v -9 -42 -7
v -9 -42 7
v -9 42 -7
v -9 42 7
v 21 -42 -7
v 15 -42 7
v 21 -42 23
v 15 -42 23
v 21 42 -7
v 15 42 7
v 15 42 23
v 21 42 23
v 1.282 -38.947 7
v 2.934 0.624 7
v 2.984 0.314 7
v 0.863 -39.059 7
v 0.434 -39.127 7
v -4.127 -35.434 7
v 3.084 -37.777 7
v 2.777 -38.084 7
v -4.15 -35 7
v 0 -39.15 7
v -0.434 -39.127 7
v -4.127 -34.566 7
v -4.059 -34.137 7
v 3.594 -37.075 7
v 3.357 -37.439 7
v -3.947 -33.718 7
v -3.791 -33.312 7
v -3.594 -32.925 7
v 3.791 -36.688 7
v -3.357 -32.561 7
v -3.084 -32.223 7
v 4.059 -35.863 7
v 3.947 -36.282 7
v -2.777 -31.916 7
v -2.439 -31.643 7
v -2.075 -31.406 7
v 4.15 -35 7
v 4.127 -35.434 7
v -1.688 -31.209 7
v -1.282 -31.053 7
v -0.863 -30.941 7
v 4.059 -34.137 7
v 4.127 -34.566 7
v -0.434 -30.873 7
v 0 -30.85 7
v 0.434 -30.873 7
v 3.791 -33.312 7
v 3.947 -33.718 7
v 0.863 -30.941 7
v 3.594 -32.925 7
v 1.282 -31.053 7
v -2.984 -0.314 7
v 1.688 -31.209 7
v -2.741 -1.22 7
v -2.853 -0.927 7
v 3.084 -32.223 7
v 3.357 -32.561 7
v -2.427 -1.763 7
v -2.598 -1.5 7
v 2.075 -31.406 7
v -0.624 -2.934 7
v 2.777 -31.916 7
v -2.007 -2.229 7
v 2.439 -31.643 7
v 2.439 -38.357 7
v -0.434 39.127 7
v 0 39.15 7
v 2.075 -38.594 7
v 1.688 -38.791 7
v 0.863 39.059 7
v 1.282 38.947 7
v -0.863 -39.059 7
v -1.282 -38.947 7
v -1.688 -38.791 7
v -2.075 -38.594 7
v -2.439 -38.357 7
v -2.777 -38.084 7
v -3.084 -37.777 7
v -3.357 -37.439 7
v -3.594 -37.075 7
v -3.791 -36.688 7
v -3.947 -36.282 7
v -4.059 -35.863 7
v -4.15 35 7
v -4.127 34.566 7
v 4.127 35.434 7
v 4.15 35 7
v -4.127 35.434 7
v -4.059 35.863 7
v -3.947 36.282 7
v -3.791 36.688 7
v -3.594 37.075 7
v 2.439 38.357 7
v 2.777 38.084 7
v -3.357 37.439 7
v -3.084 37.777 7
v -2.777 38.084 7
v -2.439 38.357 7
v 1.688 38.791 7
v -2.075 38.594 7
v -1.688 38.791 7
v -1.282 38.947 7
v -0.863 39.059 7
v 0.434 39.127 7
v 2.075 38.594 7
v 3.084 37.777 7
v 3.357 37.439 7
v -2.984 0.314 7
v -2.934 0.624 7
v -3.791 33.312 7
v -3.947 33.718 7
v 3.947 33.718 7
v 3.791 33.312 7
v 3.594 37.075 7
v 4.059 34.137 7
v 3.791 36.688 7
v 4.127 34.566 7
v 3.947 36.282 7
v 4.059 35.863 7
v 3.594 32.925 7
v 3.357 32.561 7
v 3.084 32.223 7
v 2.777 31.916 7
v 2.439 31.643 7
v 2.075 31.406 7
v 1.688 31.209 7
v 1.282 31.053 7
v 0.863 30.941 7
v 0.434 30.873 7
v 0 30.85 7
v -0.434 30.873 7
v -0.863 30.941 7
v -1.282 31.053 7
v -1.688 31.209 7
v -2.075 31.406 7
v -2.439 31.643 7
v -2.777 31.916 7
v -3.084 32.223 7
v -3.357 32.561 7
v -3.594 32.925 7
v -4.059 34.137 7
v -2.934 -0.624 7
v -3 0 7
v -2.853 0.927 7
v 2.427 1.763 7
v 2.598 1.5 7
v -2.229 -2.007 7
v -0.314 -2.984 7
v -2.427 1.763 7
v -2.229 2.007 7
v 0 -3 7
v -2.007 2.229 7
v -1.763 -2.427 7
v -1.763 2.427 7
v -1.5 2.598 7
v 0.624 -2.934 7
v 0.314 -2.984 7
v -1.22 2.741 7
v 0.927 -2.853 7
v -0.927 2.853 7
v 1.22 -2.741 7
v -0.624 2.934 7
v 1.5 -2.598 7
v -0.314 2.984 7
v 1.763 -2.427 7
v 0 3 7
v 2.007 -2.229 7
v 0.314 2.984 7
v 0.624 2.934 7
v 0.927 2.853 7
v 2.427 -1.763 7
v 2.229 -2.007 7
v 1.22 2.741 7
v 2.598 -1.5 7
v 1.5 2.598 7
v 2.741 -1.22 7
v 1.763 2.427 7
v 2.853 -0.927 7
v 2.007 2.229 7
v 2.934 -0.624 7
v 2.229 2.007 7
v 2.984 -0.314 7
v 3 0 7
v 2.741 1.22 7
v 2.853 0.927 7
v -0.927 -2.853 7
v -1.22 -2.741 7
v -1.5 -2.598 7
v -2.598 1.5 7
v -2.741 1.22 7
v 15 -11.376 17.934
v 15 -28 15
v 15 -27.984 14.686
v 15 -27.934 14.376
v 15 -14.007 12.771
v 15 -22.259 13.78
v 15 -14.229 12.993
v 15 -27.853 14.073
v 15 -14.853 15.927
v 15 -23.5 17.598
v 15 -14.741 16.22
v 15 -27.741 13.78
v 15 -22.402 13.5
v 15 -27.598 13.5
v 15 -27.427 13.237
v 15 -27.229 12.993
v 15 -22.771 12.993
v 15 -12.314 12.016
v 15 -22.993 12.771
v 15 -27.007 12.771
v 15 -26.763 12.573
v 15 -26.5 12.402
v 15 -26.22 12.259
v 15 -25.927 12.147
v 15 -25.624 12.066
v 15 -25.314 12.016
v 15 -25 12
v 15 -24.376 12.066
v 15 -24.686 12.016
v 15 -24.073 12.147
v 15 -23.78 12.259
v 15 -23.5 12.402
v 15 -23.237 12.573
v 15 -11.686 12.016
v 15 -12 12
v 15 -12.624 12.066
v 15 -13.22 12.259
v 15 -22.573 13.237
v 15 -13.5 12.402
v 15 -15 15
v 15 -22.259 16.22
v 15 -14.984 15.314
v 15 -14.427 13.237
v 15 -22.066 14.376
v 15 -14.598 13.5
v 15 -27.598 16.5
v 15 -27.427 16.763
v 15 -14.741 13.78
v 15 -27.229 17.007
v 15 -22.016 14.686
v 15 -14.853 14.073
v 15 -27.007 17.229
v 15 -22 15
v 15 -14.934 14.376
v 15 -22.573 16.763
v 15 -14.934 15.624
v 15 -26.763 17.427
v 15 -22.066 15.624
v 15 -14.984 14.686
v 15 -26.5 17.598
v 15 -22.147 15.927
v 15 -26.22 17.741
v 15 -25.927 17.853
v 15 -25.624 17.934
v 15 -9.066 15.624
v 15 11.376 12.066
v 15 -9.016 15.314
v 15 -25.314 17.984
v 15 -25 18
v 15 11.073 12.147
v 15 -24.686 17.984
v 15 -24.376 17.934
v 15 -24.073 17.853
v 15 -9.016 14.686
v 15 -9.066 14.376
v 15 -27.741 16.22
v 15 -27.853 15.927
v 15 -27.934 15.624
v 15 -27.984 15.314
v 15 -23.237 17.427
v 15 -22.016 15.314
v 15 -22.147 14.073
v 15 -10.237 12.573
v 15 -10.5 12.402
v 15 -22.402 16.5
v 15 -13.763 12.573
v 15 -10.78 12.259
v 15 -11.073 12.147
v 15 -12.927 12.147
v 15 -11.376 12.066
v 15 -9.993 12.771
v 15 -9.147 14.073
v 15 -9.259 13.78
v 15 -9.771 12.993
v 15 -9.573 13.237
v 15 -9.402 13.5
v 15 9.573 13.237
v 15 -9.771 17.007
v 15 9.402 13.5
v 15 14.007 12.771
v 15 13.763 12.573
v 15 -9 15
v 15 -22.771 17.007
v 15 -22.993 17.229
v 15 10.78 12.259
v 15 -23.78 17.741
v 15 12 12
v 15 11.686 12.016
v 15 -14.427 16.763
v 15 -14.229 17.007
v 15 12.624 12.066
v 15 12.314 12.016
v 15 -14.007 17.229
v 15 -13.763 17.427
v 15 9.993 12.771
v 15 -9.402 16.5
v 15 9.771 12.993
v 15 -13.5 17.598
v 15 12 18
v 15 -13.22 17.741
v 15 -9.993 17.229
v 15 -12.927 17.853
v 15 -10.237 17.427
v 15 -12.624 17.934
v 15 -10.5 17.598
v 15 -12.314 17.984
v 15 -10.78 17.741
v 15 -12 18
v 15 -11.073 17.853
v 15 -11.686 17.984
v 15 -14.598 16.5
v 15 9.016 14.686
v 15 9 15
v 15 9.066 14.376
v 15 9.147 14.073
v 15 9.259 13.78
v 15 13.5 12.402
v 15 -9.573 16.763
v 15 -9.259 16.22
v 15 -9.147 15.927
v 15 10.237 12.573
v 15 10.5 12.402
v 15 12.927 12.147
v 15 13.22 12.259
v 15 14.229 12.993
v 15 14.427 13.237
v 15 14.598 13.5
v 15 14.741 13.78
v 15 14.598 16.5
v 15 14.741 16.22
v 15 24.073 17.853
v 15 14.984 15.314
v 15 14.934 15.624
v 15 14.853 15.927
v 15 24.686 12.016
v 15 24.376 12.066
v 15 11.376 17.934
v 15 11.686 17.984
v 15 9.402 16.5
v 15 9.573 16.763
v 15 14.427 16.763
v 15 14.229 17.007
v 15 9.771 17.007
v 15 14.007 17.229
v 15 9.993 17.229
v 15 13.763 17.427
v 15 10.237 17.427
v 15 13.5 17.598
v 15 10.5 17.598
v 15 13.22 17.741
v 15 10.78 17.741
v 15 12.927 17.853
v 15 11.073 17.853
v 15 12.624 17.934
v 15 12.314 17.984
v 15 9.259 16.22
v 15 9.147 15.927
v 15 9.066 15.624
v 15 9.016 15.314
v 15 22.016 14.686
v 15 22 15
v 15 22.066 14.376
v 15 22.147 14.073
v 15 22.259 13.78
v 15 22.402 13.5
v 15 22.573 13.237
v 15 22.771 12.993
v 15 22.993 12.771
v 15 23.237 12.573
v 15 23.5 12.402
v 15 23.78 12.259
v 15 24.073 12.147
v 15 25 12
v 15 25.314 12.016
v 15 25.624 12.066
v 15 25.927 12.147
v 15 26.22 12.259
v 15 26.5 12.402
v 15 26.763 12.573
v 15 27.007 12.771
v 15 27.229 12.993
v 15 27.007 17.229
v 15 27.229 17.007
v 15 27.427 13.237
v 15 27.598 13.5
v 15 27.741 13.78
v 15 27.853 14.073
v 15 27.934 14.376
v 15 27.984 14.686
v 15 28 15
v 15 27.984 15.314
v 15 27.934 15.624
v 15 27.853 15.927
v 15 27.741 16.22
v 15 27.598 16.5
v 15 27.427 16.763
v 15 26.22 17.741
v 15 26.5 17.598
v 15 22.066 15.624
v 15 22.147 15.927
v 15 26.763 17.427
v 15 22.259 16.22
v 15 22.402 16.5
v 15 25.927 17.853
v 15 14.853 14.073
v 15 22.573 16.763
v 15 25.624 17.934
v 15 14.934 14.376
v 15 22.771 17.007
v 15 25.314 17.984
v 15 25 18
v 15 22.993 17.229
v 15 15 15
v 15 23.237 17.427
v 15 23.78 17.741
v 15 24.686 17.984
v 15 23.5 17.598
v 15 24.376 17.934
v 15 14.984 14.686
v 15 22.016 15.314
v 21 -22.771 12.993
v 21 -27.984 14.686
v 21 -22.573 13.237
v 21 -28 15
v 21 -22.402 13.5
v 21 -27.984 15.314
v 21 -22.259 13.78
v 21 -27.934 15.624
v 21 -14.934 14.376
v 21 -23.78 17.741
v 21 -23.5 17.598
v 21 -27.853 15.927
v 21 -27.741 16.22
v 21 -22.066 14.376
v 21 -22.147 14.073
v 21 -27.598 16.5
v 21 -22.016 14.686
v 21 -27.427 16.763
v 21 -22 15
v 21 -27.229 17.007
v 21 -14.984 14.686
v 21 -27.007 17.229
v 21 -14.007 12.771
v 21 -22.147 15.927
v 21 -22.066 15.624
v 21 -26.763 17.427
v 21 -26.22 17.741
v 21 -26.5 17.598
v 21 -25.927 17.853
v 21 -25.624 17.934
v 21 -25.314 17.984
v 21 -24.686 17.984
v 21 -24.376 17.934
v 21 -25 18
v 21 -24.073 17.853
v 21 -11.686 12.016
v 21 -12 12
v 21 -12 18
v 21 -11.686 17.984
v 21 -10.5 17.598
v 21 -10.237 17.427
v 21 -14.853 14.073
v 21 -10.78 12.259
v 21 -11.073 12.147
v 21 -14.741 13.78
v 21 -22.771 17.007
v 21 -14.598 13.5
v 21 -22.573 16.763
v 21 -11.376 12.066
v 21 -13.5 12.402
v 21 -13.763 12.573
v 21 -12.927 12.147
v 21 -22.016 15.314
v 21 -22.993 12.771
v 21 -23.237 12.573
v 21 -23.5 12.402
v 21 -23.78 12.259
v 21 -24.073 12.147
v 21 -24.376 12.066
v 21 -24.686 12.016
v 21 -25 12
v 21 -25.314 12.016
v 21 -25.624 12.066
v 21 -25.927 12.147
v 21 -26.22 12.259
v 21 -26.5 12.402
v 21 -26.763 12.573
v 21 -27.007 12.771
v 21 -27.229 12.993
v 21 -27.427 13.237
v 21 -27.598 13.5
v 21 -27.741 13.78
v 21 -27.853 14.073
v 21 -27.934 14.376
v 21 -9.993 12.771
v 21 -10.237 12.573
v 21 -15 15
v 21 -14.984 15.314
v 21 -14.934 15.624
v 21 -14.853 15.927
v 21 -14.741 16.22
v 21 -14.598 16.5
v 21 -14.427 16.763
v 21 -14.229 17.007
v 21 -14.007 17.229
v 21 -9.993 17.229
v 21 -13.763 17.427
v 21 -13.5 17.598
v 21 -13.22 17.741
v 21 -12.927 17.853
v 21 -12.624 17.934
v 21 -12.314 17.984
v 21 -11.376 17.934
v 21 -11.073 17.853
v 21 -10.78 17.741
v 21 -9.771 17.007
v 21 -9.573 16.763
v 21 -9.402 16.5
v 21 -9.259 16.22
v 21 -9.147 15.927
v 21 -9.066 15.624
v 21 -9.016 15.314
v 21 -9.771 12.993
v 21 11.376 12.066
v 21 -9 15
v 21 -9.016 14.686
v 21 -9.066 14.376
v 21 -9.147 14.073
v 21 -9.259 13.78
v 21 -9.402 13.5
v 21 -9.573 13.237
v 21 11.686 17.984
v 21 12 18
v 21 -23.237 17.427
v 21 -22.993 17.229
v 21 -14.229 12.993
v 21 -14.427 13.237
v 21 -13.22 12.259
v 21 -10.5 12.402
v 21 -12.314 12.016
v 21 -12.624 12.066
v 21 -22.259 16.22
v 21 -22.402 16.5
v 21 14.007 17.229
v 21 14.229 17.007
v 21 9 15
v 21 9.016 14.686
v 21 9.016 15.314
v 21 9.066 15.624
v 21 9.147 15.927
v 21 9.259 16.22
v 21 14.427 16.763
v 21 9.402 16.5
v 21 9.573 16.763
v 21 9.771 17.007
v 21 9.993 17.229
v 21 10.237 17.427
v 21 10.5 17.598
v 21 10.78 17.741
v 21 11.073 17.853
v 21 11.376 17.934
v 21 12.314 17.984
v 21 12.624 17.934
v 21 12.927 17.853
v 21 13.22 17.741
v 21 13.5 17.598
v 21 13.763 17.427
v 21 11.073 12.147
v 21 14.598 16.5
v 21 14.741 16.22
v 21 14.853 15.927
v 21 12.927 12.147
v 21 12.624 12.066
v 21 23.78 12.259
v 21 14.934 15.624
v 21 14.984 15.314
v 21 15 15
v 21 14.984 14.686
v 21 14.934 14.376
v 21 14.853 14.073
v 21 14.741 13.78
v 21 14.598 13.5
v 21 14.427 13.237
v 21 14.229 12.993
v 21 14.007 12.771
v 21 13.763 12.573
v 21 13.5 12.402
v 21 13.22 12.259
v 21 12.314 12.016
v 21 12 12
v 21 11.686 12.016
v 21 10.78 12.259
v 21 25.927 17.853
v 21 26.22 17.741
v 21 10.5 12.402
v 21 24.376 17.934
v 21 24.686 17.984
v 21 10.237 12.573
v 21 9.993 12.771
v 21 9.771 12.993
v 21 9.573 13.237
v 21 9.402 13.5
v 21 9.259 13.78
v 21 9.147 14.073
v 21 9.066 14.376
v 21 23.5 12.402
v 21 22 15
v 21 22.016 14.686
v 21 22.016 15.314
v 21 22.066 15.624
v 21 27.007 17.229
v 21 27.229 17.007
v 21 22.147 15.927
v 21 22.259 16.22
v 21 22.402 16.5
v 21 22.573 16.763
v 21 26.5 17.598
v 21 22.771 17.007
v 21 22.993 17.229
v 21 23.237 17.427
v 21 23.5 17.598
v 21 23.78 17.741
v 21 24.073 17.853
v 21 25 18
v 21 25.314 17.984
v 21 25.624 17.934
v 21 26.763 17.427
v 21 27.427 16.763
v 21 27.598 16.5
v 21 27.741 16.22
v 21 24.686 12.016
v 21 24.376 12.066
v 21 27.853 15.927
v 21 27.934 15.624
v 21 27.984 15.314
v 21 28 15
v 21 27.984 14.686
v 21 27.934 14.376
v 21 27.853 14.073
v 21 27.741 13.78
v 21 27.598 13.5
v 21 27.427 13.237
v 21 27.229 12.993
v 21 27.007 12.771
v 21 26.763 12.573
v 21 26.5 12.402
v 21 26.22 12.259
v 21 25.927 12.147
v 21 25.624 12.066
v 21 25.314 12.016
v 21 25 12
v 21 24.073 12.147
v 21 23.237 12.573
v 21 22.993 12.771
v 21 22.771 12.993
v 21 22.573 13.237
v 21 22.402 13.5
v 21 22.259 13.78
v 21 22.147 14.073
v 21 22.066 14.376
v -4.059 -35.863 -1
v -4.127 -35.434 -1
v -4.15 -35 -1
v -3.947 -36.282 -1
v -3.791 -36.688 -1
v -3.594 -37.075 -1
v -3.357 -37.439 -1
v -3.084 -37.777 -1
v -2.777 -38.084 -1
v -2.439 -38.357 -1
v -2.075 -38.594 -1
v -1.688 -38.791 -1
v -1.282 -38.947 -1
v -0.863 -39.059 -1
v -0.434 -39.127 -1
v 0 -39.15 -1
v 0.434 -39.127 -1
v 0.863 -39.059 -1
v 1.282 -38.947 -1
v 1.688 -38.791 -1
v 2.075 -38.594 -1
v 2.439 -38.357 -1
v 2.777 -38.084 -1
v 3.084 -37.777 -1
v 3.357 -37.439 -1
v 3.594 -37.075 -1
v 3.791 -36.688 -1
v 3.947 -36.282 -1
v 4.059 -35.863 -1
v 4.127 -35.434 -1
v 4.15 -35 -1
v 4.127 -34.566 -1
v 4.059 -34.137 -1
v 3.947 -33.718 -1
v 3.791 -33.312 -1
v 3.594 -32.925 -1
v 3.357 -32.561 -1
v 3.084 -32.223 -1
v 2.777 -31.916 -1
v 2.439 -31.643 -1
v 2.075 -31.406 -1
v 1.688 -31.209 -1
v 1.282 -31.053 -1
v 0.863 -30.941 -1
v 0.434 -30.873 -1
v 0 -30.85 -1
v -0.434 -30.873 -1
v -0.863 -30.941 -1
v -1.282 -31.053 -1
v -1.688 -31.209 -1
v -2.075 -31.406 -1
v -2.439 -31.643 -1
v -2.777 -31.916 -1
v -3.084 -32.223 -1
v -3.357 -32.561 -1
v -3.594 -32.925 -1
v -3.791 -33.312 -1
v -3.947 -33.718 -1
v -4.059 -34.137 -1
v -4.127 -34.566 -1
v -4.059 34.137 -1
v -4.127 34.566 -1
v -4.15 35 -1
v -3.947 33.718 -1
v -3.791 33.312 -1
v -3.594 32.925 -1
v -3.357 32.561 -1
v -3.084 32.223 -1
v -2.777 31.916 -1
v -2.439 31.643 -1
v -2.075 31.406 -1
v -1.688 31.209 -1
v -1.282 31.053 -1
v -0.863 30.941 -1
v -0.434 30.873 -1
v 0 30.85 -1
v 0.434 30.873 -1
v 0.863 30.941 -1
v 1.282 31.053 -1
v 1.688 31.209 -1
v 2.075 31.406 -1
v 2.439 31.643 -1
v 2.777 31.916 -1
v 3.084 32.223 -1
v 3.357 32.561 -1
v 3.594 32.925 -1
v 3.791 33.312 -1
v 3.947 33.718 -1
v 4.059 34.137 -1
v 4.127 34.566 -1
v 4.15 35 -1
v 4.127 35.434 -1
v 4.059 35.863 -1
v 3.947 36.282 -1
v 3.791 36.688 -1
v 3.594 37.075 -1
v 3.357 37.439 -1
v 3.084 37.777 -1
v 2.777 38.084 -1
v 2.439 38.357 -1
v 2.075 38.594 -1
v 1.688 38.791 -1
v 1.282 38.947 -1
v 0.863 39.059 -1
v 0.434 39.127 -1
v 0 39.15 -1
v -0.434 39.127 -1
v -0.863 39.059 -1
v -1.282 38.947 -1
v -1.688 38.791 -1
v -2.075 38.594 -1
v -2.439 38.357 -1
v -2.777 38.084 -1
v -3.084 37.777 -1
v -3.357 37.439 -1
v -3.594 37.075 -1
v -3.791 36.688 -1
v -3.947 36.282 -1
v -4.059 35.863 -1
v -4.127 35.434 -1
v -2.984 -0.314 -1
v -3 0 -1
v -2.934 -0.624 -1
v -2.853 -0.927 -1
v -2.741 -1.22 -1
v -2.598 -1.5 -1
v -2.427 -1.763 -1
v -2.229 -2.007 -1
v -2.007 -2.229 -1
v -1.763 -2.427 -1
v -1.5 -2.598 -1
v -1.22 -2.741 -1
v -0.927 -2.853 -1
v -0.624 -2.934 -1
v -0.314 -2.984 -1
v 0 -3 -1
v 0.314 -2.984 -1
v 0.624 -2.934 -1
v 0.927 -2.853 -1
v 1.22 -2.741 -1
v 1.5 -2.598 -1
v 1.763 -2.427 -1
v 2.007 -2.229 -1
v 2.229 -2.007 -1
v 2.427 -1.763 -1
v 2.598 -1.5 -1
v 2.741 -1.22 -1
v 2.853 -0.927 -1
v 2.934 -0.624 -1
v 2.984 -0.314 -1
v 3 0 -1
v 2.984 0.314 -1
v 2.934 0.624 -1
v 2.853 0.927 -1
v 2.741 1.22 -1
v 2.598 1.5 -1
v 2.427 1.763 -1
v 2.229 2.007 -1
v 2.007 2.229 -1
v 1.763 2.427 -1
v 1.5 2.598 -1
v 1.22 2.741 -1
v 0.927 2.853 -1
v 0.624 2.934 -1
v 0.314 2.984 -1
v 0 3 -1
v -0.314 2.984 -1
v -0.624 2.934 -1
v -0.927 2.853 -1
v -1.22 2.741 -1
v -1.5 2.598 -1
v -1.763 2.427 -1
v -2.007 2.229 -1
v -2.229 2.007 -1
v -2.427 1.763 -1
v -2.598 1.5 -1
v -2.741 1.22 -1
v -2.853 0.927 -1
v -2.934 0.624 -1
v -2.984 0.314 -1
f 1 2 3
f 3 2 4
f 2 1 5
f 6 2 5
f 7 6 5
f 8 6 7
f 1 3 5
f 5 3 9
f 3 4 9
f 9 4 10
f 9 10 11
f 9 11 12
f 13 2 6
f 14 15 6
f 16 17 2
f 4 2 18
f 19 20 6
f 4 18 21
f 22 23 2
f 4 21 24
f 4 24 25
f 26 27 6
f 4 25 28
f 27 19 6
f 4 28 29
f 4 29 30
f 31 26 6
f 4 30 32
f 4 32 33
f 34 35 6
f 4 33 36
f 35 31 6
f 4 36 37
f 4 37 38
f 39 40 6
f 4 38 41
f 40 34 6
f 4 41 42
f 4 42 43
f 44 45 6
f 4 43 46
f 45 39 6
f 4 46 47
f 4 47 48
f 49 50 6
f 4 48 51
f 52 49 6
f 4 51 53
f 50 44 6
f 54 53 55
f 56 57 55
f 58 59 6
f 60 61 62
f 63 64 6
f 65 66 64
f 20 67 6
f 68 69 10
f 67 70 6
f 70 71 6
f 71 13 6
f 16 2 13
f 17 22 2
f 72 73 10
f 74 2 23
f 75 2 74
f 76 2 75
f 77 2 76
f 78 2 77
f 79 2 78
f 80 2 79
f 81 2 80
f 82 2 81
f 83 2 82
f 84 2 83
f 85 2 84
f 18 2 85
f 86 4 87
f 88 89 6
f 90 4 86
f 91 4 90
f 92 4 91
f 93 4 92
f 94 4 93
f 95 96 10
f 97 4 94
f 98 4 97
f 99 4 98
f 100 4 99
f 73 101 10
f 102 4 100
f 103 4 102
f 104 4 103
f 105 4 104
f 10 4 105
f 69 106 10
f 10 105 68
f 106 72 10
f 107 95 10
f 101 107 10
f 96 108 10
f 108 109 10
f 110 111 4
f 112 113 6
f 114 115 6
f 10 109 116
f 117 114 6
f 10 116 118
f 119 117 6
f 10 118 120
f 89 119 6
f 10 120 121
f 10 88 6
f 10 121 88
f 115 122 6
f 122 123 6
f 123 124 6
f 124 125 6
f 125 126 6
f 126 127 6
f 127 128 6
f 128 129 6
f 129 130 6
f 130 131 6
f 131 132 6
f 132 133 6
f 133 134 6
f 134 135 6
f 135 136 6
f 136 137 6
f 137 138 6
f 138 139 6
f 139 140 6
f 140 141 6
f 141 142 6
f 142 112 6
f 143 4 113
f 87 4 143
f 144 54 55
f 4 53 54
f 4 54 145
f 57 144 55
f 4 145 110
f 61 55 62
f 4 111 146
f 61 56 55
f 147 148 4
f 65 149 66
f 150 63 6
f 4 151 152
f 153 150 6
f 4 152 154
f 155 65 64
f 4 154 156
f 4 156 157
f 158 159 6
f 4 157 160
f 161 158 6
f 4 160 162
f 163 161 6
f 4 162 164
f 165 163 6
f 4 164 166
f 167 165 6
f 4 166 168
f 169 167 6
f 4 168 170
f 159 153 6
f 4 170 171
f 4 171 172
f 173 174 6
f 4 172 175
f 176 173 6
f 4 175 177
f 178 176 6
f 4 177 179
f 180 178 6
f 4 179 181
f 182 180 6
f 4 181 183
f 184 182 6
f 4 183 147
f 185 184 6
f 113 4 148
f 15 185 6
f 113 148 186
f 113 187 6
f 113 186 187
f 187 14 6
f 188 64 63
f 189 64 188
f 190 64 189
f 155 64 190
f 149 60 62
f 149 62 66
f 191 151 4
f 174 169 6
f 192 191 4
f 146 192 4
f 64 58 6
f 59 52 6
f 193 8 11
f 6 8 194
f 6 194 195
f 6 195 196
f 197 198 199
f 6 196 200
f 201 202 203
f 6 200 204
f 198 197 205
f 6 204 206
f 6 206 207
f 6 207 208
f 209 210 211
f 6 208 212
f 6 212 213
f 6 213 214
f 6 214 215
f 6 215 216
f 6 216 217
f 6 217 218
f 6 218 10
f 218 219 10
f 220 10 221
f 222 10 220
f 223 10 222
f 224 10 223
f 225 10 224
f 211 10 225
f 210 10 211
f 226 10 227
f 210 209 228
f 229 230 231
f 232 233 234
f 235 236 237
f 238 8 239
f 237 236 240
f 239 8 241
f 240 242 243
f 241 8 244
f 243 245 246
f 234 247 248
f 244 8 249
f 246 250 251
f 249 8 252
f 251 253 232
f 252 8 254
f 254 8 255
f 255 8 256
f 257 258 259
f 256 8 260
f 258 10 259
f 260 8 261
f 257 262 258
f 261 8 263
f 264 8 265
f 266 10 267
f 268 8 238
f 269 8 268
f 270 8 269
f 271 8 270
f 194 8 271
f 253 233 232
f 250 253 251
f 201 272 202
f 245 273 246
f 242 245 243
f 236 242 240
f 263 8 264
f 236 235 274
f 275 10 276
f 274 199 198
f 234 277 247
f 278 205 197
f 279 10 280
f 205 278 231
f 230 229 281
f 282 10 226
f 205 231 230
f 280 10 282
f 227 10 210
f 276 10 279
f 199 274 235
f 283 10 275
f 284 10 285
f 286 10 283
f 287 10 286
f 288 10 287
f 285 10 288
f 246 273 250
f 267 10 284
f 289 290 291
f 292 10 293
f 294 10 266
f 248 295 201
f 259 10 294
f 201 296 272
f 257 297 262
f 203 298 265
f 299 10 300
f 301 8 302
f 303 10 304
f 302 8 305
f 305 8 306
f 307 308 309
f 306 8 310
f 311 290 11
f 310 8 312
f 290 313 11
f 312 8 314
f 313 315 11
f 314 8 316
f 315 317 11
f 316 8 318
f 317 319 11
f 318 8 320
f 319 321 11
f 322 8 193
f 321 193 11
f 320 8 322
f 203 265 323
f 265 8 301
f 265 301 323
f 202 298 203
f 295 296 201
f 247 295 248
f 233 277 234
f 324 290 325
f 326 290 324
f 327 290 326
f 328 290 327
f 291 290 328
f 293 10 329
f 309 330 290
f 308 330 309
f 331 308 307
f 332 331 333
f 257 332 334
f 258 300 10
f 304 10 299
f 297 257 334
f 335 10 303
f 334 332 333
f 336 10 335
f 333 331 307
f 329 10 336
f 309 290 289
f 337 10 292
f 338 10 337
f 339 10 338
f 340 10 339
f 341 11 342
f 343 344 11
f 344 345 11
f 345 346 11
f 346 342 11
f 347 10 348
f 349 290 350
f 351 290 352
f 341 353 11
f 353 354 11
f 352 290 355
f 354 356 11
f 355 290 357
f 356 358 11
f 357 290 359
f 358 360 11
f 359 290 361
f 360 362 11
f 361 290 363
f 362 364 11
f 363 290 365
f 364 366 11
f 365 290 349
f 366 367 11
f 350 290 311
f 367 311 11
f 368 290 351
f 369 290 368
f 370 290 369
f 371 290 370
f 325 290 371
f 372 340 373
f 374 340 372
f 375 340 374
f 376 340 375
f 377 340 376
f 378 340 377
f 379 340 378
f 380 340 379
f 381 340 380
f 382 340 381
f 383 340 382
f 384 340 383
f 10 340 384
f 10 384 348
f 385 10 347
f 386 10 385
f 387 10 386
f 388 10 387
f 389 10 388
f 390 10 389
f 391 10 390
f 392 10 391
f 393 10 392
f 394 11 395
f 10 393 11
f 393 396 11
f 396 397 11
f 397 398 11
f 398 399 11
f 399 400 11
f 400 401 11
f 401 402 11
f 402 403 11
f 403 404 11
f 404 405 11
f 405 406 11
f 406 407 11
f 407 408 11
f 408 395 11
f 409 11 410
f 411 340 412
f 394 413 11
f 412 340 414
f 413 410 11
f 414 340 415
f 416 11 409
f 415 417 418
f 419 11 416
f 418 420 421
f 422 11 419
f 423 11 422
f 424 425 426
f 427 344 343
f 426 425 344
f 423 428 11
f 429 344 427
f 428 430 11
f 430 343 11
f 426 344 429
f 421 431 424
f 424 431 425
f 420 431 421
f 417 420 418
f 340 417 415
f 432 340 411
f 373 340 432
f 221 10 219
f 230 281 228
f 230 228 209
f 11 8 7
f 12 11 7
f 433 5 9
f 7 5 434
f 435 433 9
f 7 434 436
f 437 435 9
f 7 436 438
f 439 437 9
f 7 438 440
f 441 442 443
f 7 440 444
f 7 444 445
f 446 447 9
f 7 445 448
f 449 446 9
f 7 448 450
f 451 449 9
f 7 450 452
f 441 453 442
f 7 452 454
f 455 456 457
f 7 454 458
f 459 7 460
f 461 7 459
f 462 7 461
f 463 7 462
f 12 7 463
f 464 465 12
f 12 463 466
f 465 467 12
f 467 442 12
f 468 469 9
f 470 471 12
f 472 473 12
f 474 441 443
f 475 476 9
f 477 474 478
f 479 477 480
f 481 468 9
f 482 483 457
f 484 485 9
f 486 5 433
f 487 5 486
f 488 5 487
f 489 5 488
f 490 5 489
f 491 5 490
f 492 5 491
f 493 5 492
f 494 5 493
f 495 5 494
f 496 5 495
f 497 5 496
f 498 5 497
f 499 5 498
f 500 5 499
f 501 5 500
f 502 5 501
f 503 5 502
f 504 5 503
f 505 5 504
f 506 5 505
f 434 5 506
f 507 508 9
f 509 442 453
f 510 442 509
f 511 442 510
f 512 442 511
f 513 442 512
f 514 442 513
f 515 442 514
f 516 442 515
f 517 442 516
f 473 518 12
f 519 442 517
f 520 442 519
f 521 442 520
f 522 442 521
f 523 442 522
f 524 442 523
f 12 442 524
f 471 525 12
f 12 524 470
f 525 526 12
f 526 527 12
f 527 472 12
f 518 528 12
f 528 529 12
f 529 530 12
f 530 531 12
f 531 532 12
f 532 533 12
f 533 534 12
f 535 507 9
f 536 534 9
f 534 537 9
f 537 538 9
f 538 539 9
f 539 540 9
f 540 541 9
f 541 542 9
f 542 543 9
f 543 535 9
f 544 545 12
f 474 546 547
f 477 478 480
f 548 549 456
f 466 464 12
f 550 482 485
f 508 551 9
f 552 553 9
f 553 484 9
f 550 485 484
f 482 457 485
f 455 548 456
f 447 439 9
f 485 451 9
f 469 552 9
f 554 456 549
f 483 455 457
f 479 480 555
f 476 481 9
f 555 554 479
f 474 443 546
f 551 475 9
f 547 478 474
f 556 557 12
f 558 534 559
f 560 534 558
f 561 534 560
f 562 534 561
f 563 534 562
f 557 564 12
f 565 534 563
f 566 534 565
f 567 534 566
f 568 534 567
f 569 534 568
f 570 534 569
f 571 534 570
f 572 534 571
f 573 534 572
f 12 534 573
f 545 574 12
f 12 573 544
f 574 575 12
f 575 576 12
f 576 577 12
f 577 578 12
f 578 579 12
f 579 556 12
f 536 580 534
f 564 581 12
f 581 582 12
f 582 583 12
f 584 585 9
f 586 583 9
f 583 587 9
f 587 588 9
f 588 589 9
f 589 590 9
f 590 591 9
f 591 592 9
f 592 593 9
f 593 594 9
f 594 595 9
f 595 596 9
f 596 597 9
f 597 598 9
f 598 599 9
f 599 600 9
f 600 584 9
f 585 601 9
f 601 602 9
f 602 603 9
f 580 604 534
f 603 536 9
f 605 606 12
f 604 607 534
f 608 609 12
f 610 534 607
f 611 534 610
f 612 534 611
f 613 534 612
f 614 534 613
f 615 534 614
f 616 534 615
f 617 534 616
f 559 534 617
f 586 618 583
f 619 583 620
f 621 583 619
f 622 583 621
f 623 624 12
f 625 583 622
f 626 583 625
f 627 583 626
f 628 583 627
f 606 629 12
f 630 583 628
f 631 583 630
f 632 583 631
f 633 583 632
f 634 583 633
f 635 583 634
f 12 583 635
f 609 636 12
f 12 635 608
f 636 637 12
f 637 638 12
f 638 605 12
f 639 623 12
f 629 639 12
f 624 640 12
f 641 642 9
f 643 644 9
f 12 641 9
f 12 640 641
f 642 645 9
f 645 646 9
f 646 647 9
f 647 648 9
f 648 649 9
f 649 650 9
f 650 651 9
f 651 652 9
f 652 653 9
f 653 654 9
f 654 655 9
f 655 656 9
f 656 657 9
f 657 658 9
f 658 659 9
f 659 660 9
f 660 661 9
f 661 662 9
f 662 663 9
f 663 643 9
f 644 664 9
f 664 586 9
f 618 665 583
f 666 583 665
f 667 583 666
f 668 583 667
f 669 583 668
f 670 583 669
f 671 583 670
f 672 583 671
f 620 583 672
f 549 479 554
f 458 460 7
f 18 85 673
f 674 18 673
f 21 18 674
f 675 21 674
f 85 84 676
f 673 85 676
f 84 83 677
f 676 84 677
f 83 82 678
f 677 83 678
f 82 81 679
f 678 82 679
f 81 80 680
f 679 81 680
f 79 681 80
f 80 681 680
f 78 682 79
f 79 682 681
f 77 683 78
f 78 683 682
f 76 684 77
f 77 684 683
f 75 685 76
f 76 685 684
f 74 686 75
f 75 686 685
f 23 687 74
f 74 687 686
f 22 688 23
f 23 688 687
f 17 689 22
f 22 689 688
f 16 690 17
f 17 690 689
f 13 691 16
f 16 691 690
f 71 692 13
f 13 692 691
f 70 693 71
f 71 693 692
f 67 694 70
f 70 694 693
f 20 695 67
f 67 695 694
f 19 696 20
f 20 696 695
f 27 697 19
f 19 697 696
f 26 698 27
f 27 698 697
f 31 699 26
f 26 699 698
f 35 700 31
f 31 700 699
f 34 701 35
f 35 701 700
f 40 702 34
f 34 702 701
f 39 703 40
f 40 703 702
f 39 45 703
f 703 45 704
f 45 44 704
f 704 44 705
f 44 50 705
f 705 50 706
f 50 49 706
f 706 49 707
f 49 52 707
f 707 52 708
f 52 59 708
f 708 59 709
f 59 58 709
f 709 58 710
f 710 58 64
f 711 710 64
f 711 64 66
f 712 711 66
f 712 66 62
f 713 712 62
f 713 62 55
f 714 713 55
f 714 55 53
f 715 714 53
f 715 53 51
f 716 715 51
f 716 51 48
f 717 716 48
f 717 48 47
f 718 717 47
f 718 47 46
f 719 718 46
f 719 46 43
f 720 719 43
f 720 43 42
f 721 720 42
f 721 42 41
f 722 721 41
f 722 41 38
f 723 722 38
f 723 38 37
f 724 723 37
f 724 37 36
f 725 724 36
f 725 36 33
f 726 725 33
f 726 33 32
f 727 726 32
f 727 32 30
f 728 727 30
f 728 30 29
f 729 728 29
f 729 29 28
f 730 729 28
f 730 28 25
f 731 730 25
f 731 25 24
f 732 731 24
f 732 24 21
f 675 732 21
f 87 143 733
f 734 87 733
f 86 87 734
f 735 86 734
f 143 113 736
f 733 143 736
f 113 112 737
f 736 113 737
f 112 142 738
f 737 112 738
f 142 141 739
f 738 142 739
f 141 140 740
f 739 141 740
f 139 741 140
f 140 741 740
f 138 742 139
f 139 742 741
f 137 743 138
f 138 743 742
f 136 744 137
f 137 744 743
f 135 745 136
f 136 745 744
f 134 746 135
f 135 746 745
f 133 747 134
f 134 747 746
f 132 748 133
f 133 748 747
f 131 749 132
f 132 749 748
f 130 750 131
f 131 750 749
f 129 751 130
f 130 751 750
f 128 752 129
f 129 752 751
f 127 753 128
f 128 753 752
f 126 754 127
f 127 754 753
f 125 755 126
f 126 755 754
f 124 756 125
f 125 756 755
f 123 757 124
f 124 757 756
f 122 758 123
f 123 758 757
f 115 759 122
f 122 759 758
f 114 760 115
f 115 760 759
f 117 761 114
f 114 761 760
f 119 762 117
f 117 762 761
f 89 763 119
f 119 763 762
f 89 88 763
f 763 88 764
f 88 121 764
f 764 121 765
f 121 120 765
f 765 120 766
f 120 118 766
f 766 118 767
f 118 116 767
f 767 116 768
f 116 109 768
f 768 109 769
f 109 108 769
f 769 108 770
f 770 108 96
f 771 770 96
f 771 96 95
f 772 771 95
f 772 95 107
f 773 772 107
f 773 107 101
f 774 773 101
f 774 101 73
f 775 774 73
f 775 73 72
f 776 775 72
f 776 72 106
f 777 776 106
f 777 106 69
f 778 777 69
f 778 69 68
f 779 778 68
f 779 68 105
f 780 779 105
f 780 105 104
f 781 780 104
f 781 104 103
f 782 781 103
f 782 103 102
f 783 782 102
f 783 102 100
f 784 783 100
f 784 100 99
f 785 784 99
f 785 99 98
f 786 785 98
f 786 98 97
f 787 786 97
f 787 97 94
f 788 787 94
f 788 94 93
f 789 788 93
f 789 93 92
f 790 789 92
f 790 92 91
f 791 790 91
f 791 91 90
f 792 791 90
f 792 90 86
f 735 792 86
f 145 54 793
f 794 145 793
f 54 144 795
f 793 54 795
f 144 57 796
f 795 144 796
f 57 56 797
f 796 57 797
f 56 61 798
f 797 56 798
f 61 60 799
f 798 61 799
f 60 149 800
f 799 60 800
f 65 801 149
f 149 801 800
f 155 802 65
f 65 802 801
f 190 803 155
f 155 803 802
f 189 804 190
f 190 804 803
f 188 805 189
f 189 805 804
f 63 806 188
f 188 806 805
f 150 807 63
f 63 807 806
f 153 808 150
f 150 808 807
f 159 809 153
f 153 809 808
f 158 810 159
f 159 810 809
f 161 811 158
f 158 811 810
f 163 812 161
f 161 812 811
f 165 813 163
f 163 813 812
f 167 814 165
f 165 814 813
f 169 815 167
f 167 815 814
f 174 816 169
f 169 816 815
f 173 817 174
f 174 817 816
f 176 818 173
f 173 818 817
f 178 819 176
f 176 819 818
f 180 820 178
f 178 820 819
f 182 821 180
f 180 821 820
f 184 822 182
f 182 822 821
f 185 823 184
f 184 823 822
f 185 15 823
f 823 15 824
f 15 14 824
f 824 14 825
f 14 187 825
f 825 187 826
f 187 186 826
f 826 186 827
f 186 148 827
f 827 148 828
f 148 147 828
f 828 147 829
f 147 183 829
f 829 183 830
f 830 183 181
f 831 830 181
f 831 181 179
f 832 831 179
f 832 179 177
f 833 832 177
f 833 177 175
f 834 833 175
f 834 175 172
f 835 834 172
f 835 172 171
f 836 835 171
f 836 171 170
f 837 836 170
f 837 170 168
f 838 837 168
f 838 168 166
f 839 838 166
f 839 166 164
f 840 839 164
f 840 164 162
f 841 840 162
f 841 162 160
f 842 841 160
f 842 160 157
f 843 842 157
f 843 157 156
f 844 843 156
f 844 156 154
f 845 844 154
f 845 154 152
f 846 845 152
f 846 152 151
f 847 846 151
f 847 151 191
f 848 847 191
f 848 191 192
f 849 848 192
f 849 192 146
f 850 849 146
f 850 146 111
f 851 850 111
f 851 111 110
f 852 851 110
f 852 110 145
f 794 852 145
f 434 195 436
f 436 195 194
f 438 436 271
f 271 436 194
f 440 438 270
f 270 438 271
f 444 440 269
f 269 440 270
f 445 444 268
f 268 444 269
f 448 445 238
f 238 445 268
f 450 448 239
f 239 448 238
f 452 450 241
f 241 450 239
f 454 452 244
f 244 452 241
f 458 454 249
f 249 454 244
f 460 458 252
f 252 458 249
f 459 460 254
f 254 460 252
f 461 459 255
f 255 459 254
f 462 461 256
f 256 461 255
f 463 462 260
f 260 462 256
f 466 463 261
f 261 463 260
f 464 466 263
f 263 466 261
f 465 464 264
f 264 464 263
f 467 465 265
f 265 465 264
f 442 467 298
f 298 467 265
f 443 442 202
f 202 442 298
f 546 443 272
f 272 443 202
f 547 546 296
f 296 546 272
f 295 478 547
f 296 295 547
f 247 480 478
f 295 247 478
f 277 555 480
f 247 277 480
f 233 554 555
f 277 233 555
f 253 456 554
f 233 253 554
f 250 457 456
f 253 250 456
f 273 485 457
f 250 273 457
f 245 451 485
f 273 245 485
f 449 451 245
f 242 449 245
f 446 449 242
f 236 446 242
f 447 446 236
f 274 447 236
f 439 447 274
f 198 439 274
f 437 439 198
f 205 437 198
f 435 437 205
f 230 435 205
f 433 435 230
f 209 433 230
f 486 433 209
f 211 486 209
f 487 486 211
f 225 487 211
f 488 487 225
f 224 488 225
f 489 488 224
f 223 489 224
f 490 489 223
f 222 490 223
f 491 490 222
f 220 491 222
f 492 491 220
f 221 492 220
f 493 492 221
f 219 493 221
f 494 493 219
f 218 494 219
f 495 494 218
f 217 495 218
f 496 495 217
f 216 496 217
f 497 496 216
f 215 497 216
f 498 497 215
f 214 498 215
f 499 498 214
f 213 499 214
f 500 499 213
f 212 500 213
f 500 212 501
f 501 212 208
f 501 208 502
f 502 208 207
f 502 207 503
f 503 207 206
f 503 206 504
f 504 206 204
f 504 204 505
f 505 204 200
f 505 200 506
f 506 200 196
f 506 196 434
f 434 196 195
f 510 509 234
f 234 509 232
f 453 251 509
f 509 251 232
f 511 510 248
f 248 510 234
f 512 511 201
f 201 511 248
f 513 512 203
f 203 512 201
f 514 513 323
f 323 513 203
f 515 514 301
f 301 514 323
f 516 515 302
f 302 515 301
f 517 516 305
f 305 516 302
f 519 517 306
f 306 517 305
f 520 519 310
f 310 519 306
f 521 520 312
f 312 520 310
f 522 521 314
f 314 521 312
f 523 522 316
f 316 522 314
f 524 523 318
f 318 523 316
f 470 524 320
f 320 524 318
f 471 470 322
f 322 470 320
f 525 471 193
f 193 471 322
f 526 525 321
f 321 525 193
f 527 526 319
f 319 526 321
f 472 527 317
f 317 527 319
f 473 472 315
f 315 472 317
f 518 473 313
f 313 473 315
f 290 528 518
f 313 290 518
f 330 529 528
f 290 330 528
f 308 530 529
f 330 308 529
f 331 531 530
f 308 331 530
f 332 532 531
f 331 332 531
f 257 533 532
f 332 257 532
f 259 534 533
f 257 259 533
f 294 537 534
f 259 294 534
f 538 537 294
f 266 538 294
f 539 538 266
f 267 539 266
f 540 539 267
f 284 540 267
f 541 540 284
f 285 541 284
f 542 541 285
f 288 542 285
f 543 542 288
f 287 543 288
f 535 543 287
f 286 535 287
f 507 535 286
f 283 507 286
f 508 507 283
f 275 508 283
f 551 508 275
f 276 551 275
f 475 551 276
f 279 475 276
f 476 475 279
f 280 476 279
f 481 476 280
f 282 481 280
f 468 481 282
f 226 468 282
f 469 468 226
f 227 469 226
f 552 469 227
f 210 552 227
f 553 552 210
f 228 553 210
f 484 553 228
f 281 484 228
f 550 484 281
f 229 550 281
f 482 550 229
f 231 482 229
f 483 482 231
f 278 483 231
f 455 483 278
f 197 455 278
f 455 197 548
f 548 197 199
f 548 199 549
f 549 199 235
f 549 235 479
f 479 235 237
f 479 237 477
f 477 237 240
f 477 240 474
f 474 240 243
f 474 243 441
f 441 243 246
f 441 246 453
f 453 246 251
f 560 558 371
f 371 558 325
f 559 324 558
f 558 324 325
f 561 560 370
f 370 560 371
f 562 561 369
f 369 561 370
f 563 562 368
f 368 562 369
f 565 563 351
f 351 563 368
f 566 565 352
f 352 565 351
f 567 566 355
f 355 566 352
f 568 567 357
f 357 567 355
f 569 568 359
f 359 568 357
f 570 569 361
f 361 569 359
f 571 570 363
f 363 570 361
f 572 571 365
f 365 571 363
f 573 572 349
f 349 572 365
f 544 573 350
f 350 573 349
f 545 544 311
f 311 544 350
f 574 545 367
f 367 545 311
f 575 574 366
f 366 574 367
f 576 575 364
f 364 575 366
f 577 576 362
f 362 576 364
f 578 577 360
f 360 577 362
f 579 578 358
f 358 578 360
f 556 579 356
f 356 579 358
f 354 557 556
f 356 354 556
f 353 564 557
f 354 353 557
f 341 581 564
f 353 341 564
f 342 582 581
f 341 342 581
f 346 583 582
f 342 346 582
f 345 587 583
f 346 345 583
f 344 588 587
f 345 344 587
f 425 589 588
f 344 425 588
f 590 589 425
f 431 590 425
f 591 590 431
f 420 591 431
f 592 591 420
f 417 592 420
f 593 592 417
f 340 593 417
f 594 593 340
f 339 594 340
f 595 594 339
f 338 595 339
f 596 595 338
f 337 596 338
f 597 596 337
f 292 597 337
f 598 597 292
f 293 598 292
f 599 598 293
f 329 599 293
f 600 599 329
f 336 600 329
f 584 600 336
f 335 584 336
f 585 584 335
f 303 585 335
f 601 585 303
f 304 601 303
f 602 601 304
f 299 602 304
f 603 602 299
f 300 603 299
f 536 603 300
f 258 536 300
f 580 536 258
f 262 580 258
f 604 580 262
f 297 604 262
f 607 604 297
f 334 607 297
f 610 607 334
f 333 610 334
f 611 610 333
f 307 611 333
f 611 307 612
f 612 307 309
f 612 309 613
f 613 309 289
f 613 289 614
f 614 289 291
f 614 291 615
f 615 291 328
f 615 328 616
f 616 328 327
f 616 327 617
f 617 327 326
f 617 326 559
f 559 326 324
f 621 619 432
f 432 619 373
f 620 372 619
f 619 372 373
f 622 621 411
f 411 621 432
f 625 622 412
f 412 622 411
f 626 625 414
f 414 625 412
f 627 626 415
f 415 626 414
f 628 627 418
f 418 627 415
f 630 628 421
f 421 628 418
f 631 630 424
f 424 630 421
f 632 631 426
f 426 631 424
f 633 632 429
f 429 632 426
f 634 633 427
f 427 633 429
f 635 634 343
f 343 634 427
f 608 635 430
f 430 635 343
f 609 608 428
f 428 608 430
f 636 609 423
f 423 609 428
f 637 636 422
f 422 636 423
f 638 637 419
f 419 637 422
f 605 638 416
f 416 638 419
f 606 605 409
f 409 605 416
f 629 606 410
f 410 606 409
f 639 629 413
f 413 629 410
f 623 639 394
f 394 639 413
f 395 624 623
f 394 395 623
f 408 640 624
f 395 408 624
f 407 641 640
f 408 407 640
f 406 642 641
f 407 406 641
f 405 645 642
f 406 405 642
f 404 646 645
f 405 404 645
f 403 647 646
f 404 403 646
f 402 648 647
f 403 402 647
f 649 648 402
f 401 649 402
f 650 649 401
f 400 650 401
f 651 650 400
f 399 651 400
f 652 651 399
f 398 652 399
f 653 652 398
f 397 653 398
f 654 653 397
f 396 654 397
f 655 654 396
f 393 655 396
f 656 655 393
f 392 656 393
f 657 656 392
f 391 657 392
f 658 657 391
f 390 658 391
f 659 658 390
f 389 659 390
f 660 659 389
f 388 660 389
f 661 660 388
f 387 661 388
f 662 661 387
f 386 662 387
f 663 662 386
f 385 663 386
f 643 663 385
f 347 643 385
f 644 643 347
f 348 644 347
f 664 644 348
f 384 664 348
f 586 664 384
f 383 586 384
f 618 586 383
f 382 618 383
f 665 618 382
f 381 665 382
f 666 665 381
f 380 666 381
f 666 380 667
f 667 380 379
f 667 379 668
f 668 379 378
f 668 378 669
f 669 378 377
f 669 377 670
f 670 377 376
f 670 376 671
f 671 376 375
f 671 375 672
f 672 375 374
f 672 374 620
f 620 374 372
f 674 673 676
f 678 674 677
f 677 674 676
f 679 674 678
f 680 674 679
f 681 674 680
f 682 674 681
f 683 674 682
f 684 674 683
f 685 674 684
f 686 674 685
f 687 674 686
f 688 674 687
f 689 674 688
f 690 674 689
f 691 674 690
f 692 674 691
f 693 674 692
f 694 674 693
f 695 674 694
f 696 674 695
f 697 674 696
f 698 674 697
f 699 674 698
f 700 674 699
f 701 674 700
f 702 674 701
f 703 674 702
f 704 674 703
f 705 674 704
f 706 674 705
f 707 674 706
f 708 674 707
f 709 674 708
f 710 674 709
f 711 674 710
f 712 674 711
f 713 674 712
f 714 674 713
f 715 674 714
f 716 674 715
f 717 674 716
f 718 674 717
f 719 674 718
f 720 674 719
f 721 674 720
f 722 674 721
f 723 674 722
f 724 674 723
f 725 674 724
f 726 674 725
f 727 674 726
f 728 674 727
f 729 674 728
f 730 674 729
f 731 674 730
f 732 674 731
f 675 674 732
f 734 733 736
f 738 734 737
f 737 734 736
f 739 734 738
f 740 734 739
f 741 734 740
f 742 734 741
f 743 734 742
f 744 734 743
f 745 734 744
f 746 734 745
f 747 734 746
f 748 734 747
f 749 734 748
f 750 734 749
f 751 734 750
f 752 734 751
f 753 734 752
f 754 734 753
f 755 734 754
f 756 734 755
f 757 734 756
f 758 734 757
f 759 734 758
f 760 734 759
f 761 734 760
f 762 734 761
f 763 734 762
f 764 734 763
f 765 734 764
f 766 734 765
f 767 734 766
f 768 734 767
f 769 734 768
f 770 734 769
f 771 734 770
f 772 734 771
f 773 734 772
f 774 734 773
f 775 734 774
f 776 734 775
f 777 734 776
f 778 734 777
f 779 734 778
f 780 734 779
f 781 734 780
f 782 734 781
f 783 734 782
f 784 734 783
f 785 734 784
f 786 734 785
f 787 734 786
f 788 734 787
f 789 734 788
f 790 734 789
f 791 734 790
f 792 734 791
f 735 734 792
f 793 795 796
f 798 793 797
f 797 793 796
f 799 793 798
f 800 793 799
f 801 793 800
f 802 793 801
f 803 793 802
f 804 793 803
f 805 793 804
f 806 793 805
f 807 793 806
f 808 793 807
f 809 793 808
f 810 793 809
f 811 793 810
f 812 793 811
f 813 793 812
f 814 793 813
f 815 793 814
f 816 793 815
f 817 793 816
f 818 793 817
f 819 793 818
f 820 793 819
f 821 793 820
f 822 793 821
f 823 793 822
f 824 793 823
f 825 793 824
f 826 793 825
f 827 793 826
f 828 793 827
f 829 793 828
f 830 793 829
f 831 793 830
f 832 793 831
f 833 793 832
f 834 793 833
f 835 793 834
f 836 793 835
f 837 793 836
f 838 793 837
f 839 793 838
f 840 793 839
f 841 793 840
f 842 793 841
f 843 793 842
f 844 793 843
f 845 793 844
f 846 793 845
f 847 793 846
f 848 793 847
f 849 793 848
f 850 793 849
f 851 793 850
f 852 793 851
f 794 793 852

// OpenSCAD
h1 = 10;	// Height body
h3 = h1+2;	// Height cylinders
r1 = 4.15;	// Radio varilla lisa
r2 = 2.3;	// Radio tornillo M3
r3 = 11.2;	// Radio centro motor
r4 = 3;		// Radio tornillo M5
r5 = 7.65;	// Radio rodamiento lineal
r6 = 4.65;	// Radio tuerca M5
r7 = 2.9;	// Radio poleas
r8 = 3.7;	// Radio cabeza tornillo M3
L1 = 15;	// Longitud varilla lisa 8mm

module z_upper_bracket_tantillus()
{
	union() {
		difference() {
			translate([6, 0, 0])
				cube([30, 84, 14], center = true);
			translate([0, 0, 4])
				cylinder(h = 10, r = r4, $fn=60, center = true);
			translate([0, 35, 4])
				cylinder(h = 10, r = r1, $fn=60, center = true);
			translate([0, -35, 4])
				cylinder(h = 10, r = r1, $fn=60, center = true);
		}
		translate([18, 0, 8])
			difference() {
				cube([6, 84, 30], center = true);
				translate([-4, 12, 7])
					rotate([0, 90, 0])
						cylinder(h = 10, r = r4, $fn=60);
				translate([-4, -12, 7])
					rotate([0, 90, 0])
						cylinder(h = 10, r = r4, $fn=60);
				translate([-4, 25, 7])
					rotate([0, 90, 0])
						cylinder(h = 10, r = r4, $fn=60);
				translate([-4, -25, 7])
					rotate([0, 90, 0])
						cylinder(h = 10, r = r4, $fn=60);
			}
	}
}

z_upper_bracket_tantillus();
